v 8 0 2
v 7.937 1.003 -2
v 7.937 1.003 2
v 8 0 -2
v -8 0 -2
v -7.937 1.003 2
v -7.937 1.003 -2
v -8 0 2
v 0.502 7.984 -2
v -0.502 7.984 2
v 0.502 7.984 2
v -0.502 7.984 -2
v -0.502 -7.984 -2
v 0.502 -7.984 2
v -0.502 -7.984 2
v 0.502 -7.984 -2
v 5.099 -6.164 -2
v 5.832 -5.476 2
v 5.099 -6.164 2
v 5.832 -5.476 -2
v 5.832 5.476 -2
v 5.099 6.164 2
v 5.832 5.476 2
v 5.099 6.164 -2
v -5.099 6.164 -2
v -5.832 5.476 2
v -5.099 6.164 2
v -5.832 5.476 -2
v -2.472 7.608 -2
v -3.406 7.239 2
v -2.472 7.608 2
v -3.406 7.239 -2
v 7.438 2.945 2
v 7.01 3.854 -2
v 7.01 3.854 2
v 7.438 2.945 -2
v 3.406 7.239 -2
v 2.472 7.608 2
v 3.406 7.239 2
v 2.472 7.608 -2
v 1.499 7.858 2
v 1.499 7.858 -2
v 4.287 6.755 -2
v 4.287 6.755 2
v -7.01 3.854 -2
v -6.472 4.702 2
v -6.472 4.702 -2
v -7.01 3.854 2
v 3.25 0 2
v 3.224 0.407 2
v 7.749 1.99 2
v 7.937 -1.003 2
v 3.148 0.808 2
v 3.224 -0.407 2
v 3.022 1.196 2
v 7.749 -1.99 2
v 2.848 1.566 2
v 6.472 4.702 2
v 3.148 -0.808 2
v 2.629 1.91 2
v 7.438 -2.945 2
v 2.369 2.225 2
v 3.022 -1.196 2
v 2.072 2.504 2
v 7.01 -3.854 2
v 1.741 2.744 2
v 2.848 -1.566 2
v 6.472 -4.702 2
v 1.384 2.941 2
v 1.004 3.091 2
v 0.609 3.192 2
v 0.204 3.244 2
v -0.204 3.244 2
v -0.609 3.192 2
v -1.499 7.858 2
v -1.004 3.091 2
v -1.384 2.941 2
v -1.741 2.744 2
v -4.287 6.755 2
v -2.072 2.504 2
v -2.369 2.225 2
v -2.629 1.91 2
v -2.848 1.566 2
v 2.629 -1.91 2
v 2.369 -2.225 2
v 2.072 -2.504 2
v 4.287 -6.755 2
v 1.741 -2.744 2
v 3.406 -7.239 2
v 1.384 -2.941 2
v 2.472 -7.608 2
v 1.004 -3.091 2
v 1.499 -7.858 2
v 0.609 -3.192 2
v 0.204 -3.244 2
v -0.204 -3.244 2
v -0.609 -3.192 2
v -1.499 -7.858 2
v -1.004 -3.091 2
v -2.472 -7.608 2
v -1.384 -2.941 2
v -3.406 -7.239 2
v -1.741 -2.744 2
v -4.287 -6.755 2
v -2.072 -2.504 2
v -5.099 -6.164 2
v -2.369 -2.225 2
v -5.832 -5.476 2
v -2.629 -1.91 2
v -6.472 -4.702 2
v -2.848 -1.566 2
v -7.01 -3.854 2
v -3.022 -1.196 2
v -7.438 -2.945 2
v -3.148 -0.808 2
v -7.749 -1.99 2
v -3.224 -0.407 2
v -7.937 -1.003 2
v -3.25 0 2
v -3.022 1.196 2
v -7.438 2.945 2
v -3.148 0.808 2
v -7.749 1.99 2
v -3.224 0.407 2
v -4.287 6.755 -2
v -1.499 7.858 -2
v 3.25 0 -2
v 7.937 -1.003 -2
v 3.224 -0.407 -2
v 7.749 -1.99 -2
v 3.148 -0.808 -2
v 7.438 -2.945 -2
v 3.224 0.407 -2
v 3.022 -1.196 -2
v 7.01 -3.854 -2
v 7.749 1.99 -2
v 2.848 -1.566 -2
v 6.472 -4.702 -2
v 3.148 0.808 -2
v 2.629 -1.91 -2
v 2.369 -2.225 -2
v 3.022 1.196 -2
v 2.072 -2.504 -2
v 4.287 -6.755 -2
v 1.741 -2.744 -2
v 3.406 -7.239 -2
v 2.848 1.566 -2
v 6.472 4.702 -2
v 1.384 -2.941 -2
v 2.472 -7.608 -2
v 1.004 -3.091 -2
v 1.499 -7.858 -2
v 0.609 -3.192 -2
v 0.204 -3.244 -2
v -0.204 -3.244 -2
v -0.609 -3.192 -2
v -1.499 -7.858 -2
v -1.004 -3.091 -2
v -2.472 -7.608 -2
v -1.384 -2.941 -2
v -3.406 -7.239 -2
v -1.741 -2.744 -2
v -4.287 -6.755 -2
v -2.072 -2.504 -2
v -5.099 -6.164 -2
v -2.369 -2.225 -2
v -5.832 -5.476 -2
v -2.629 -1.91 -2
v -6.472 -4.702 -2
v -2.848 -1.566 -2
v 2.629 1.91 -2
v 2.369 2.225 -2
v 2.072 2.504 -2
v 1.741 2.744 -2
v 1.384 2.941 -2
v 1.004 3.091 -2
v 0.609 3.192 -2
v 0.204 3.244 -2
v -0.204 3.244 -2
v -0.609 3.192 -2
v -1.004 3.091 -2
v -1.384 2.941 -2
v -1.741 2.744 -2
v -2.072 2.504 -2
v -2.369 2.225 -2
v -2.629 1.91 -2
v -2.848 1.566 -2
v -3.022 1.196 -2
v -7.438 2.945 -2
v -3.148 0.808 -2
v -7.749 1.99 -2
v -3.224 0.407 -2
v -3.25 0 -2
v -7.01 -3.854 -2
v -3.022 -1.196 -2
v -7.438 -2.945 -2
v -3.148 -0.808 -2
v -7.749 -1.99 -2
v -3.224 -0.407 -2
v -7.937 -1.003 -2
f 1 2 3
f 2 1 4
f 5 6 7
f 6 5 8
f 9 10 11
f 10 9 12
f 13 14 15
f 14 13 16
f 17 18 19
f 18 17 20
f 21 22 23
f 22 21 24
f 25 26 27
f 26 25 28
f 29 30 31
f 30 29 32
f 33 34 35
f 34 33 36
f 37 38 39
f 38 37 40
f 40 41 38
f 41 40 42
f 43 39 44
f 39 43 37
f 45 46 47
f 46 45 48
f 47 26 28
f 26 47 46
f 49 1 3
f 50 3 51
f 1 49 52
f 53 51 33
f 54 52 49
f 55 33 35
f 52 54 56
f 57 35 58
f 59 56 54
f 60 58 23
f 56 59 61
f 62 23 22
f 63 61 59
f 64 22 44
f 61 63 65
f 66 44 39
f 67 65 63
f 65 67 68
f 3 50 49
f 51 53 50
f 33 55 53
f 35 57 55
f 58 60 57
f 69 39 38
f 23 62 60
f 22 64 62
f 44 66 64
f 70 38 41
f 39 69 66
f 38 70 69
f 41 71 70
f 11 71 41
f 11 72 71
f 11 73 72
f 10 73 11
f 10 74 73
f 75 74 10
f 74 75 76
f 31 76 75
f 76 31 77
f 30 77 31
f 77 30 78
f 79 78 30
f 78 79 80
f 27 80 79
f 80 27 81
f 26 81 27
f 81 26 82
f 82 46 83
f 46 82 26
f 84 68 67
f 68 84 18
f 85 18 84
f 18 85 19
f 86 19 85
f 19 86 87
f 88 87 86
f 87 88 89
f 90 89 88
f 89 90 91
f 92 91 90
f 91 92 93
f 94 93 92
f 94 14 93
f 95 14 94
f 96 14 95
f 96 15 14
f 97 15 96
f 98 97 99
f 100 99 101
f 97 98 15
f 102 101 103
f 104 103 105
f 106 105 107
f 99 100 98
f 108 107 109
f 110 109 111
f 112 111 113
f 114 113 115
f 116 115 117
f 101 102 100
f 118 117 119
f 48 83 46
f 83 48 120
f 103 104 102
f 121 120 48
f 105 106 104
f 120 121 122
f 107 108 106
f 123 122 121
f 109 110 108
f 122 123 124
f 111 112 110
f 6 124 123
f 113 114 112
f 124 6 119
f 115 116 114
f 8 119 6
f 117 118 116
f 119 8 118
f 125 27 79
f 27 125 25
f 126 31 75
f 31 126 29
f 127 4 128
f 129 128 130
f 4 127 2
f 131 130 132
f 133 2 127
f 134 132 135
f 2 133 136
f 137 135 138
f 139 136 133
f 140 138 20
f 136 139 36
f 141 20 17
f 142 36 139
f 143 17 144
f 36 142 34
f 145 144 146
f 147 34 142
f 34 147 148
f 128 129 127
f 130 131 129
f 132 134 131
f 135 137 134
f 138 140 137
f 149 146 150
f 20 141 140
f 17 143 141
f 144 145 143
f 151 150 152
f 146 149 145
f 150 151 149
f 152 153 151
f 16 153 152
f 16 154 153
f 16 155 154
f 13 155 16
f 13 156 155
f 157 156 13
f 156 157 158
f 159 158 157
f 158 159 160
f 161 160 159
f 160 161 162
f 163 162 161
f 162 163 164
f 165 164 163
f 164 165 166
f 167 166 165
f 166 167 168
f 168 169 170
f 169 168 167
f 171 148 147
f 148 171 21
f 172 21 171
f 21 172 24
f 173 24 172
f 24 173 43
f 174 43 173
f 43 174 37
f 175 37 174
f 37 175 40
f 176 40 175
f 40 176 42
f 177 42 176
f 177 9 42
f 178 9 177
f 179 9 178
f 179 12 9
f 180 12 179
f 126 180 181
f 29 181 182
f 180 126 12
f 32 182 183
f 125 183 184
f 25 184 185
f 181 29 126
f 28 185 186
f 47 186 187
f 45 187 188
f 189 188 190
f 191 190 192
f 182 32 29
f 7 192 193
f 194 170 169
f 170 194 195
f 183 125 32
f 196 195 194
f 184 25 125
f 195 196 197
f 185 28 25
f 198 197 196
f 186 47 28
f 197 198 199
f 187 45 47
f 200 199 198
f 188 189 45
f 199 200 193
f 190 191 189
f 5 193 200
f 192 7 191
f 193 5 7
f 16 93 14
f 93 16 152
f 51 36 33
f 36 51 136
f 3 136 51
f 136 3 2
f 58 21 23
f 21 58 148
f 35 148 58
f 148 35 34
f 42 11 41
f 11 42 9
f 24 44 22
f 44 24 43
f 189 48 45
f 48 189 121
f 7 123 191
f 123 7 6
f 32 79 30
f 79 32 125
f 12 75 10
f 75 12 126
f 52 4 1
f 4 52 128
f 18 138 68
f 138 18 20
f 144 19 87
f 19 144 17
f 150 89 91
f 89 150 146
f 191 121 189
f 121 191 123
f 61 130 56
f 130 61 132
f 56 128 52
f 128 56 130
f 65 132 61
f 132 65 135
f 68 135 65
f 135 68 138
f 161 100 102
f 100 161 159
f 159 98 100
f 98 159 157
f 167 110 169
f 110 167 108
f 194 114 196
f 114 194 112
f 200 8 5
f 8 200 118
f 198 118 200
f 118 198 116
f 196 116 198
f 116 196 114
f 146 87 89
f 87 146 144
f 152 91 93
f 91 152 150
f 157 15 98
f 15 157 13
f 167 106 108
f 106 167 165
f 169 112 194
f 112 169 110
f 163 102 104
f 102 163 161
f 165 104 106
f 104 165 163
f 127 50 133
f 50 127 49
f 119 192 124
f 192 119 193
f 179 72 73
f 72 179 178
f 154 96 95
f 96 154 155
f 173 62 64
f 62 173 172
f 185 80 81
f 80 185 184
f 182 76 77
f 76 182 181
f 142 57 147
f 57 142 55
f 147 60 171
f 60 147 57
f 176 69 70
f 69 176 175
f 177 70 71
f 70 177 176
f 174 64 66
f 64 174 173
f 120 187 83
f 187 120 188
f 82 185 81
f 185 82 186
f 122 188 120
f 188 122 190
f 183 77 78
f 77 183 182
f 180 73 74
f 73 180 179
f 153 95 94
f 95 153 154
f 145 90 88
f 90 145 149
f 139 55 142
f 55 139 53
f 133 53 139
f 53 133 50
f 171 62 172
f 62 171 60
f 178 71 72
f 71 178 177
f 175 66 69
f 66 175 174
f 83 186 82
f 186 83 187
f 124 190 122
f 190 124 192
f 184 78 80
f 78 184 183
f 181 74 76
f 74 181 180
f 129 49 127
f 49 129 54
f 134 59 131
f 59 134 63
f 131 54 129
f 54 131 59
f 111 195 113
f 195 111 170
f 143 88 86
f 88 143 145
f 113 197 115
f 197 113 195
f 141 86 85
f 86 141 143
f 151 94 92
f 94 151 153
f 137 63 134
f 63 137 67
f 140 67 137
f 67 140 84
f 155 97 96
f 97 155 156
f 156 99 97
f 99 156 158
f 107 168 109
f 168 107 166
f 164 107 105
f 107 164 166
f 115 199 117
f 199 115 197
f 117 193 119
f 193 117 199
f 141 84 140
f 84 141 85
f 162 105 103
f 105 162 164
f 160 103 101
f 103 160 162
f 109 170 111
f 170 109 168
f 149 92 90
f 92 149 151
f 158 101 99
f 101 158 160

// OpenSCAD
$fn = 50;


difference() {
	union() {
		translate(v = [0, 0, -2.0000000000]) {
			cylinder(h = 4, r = 8.0000000000);
		}
	}
	union() {
		translate(v = [0, 0, -100.0000000000]) {
			cylinder(h = 200, r = 3.2500000000);
		}
	}
}
